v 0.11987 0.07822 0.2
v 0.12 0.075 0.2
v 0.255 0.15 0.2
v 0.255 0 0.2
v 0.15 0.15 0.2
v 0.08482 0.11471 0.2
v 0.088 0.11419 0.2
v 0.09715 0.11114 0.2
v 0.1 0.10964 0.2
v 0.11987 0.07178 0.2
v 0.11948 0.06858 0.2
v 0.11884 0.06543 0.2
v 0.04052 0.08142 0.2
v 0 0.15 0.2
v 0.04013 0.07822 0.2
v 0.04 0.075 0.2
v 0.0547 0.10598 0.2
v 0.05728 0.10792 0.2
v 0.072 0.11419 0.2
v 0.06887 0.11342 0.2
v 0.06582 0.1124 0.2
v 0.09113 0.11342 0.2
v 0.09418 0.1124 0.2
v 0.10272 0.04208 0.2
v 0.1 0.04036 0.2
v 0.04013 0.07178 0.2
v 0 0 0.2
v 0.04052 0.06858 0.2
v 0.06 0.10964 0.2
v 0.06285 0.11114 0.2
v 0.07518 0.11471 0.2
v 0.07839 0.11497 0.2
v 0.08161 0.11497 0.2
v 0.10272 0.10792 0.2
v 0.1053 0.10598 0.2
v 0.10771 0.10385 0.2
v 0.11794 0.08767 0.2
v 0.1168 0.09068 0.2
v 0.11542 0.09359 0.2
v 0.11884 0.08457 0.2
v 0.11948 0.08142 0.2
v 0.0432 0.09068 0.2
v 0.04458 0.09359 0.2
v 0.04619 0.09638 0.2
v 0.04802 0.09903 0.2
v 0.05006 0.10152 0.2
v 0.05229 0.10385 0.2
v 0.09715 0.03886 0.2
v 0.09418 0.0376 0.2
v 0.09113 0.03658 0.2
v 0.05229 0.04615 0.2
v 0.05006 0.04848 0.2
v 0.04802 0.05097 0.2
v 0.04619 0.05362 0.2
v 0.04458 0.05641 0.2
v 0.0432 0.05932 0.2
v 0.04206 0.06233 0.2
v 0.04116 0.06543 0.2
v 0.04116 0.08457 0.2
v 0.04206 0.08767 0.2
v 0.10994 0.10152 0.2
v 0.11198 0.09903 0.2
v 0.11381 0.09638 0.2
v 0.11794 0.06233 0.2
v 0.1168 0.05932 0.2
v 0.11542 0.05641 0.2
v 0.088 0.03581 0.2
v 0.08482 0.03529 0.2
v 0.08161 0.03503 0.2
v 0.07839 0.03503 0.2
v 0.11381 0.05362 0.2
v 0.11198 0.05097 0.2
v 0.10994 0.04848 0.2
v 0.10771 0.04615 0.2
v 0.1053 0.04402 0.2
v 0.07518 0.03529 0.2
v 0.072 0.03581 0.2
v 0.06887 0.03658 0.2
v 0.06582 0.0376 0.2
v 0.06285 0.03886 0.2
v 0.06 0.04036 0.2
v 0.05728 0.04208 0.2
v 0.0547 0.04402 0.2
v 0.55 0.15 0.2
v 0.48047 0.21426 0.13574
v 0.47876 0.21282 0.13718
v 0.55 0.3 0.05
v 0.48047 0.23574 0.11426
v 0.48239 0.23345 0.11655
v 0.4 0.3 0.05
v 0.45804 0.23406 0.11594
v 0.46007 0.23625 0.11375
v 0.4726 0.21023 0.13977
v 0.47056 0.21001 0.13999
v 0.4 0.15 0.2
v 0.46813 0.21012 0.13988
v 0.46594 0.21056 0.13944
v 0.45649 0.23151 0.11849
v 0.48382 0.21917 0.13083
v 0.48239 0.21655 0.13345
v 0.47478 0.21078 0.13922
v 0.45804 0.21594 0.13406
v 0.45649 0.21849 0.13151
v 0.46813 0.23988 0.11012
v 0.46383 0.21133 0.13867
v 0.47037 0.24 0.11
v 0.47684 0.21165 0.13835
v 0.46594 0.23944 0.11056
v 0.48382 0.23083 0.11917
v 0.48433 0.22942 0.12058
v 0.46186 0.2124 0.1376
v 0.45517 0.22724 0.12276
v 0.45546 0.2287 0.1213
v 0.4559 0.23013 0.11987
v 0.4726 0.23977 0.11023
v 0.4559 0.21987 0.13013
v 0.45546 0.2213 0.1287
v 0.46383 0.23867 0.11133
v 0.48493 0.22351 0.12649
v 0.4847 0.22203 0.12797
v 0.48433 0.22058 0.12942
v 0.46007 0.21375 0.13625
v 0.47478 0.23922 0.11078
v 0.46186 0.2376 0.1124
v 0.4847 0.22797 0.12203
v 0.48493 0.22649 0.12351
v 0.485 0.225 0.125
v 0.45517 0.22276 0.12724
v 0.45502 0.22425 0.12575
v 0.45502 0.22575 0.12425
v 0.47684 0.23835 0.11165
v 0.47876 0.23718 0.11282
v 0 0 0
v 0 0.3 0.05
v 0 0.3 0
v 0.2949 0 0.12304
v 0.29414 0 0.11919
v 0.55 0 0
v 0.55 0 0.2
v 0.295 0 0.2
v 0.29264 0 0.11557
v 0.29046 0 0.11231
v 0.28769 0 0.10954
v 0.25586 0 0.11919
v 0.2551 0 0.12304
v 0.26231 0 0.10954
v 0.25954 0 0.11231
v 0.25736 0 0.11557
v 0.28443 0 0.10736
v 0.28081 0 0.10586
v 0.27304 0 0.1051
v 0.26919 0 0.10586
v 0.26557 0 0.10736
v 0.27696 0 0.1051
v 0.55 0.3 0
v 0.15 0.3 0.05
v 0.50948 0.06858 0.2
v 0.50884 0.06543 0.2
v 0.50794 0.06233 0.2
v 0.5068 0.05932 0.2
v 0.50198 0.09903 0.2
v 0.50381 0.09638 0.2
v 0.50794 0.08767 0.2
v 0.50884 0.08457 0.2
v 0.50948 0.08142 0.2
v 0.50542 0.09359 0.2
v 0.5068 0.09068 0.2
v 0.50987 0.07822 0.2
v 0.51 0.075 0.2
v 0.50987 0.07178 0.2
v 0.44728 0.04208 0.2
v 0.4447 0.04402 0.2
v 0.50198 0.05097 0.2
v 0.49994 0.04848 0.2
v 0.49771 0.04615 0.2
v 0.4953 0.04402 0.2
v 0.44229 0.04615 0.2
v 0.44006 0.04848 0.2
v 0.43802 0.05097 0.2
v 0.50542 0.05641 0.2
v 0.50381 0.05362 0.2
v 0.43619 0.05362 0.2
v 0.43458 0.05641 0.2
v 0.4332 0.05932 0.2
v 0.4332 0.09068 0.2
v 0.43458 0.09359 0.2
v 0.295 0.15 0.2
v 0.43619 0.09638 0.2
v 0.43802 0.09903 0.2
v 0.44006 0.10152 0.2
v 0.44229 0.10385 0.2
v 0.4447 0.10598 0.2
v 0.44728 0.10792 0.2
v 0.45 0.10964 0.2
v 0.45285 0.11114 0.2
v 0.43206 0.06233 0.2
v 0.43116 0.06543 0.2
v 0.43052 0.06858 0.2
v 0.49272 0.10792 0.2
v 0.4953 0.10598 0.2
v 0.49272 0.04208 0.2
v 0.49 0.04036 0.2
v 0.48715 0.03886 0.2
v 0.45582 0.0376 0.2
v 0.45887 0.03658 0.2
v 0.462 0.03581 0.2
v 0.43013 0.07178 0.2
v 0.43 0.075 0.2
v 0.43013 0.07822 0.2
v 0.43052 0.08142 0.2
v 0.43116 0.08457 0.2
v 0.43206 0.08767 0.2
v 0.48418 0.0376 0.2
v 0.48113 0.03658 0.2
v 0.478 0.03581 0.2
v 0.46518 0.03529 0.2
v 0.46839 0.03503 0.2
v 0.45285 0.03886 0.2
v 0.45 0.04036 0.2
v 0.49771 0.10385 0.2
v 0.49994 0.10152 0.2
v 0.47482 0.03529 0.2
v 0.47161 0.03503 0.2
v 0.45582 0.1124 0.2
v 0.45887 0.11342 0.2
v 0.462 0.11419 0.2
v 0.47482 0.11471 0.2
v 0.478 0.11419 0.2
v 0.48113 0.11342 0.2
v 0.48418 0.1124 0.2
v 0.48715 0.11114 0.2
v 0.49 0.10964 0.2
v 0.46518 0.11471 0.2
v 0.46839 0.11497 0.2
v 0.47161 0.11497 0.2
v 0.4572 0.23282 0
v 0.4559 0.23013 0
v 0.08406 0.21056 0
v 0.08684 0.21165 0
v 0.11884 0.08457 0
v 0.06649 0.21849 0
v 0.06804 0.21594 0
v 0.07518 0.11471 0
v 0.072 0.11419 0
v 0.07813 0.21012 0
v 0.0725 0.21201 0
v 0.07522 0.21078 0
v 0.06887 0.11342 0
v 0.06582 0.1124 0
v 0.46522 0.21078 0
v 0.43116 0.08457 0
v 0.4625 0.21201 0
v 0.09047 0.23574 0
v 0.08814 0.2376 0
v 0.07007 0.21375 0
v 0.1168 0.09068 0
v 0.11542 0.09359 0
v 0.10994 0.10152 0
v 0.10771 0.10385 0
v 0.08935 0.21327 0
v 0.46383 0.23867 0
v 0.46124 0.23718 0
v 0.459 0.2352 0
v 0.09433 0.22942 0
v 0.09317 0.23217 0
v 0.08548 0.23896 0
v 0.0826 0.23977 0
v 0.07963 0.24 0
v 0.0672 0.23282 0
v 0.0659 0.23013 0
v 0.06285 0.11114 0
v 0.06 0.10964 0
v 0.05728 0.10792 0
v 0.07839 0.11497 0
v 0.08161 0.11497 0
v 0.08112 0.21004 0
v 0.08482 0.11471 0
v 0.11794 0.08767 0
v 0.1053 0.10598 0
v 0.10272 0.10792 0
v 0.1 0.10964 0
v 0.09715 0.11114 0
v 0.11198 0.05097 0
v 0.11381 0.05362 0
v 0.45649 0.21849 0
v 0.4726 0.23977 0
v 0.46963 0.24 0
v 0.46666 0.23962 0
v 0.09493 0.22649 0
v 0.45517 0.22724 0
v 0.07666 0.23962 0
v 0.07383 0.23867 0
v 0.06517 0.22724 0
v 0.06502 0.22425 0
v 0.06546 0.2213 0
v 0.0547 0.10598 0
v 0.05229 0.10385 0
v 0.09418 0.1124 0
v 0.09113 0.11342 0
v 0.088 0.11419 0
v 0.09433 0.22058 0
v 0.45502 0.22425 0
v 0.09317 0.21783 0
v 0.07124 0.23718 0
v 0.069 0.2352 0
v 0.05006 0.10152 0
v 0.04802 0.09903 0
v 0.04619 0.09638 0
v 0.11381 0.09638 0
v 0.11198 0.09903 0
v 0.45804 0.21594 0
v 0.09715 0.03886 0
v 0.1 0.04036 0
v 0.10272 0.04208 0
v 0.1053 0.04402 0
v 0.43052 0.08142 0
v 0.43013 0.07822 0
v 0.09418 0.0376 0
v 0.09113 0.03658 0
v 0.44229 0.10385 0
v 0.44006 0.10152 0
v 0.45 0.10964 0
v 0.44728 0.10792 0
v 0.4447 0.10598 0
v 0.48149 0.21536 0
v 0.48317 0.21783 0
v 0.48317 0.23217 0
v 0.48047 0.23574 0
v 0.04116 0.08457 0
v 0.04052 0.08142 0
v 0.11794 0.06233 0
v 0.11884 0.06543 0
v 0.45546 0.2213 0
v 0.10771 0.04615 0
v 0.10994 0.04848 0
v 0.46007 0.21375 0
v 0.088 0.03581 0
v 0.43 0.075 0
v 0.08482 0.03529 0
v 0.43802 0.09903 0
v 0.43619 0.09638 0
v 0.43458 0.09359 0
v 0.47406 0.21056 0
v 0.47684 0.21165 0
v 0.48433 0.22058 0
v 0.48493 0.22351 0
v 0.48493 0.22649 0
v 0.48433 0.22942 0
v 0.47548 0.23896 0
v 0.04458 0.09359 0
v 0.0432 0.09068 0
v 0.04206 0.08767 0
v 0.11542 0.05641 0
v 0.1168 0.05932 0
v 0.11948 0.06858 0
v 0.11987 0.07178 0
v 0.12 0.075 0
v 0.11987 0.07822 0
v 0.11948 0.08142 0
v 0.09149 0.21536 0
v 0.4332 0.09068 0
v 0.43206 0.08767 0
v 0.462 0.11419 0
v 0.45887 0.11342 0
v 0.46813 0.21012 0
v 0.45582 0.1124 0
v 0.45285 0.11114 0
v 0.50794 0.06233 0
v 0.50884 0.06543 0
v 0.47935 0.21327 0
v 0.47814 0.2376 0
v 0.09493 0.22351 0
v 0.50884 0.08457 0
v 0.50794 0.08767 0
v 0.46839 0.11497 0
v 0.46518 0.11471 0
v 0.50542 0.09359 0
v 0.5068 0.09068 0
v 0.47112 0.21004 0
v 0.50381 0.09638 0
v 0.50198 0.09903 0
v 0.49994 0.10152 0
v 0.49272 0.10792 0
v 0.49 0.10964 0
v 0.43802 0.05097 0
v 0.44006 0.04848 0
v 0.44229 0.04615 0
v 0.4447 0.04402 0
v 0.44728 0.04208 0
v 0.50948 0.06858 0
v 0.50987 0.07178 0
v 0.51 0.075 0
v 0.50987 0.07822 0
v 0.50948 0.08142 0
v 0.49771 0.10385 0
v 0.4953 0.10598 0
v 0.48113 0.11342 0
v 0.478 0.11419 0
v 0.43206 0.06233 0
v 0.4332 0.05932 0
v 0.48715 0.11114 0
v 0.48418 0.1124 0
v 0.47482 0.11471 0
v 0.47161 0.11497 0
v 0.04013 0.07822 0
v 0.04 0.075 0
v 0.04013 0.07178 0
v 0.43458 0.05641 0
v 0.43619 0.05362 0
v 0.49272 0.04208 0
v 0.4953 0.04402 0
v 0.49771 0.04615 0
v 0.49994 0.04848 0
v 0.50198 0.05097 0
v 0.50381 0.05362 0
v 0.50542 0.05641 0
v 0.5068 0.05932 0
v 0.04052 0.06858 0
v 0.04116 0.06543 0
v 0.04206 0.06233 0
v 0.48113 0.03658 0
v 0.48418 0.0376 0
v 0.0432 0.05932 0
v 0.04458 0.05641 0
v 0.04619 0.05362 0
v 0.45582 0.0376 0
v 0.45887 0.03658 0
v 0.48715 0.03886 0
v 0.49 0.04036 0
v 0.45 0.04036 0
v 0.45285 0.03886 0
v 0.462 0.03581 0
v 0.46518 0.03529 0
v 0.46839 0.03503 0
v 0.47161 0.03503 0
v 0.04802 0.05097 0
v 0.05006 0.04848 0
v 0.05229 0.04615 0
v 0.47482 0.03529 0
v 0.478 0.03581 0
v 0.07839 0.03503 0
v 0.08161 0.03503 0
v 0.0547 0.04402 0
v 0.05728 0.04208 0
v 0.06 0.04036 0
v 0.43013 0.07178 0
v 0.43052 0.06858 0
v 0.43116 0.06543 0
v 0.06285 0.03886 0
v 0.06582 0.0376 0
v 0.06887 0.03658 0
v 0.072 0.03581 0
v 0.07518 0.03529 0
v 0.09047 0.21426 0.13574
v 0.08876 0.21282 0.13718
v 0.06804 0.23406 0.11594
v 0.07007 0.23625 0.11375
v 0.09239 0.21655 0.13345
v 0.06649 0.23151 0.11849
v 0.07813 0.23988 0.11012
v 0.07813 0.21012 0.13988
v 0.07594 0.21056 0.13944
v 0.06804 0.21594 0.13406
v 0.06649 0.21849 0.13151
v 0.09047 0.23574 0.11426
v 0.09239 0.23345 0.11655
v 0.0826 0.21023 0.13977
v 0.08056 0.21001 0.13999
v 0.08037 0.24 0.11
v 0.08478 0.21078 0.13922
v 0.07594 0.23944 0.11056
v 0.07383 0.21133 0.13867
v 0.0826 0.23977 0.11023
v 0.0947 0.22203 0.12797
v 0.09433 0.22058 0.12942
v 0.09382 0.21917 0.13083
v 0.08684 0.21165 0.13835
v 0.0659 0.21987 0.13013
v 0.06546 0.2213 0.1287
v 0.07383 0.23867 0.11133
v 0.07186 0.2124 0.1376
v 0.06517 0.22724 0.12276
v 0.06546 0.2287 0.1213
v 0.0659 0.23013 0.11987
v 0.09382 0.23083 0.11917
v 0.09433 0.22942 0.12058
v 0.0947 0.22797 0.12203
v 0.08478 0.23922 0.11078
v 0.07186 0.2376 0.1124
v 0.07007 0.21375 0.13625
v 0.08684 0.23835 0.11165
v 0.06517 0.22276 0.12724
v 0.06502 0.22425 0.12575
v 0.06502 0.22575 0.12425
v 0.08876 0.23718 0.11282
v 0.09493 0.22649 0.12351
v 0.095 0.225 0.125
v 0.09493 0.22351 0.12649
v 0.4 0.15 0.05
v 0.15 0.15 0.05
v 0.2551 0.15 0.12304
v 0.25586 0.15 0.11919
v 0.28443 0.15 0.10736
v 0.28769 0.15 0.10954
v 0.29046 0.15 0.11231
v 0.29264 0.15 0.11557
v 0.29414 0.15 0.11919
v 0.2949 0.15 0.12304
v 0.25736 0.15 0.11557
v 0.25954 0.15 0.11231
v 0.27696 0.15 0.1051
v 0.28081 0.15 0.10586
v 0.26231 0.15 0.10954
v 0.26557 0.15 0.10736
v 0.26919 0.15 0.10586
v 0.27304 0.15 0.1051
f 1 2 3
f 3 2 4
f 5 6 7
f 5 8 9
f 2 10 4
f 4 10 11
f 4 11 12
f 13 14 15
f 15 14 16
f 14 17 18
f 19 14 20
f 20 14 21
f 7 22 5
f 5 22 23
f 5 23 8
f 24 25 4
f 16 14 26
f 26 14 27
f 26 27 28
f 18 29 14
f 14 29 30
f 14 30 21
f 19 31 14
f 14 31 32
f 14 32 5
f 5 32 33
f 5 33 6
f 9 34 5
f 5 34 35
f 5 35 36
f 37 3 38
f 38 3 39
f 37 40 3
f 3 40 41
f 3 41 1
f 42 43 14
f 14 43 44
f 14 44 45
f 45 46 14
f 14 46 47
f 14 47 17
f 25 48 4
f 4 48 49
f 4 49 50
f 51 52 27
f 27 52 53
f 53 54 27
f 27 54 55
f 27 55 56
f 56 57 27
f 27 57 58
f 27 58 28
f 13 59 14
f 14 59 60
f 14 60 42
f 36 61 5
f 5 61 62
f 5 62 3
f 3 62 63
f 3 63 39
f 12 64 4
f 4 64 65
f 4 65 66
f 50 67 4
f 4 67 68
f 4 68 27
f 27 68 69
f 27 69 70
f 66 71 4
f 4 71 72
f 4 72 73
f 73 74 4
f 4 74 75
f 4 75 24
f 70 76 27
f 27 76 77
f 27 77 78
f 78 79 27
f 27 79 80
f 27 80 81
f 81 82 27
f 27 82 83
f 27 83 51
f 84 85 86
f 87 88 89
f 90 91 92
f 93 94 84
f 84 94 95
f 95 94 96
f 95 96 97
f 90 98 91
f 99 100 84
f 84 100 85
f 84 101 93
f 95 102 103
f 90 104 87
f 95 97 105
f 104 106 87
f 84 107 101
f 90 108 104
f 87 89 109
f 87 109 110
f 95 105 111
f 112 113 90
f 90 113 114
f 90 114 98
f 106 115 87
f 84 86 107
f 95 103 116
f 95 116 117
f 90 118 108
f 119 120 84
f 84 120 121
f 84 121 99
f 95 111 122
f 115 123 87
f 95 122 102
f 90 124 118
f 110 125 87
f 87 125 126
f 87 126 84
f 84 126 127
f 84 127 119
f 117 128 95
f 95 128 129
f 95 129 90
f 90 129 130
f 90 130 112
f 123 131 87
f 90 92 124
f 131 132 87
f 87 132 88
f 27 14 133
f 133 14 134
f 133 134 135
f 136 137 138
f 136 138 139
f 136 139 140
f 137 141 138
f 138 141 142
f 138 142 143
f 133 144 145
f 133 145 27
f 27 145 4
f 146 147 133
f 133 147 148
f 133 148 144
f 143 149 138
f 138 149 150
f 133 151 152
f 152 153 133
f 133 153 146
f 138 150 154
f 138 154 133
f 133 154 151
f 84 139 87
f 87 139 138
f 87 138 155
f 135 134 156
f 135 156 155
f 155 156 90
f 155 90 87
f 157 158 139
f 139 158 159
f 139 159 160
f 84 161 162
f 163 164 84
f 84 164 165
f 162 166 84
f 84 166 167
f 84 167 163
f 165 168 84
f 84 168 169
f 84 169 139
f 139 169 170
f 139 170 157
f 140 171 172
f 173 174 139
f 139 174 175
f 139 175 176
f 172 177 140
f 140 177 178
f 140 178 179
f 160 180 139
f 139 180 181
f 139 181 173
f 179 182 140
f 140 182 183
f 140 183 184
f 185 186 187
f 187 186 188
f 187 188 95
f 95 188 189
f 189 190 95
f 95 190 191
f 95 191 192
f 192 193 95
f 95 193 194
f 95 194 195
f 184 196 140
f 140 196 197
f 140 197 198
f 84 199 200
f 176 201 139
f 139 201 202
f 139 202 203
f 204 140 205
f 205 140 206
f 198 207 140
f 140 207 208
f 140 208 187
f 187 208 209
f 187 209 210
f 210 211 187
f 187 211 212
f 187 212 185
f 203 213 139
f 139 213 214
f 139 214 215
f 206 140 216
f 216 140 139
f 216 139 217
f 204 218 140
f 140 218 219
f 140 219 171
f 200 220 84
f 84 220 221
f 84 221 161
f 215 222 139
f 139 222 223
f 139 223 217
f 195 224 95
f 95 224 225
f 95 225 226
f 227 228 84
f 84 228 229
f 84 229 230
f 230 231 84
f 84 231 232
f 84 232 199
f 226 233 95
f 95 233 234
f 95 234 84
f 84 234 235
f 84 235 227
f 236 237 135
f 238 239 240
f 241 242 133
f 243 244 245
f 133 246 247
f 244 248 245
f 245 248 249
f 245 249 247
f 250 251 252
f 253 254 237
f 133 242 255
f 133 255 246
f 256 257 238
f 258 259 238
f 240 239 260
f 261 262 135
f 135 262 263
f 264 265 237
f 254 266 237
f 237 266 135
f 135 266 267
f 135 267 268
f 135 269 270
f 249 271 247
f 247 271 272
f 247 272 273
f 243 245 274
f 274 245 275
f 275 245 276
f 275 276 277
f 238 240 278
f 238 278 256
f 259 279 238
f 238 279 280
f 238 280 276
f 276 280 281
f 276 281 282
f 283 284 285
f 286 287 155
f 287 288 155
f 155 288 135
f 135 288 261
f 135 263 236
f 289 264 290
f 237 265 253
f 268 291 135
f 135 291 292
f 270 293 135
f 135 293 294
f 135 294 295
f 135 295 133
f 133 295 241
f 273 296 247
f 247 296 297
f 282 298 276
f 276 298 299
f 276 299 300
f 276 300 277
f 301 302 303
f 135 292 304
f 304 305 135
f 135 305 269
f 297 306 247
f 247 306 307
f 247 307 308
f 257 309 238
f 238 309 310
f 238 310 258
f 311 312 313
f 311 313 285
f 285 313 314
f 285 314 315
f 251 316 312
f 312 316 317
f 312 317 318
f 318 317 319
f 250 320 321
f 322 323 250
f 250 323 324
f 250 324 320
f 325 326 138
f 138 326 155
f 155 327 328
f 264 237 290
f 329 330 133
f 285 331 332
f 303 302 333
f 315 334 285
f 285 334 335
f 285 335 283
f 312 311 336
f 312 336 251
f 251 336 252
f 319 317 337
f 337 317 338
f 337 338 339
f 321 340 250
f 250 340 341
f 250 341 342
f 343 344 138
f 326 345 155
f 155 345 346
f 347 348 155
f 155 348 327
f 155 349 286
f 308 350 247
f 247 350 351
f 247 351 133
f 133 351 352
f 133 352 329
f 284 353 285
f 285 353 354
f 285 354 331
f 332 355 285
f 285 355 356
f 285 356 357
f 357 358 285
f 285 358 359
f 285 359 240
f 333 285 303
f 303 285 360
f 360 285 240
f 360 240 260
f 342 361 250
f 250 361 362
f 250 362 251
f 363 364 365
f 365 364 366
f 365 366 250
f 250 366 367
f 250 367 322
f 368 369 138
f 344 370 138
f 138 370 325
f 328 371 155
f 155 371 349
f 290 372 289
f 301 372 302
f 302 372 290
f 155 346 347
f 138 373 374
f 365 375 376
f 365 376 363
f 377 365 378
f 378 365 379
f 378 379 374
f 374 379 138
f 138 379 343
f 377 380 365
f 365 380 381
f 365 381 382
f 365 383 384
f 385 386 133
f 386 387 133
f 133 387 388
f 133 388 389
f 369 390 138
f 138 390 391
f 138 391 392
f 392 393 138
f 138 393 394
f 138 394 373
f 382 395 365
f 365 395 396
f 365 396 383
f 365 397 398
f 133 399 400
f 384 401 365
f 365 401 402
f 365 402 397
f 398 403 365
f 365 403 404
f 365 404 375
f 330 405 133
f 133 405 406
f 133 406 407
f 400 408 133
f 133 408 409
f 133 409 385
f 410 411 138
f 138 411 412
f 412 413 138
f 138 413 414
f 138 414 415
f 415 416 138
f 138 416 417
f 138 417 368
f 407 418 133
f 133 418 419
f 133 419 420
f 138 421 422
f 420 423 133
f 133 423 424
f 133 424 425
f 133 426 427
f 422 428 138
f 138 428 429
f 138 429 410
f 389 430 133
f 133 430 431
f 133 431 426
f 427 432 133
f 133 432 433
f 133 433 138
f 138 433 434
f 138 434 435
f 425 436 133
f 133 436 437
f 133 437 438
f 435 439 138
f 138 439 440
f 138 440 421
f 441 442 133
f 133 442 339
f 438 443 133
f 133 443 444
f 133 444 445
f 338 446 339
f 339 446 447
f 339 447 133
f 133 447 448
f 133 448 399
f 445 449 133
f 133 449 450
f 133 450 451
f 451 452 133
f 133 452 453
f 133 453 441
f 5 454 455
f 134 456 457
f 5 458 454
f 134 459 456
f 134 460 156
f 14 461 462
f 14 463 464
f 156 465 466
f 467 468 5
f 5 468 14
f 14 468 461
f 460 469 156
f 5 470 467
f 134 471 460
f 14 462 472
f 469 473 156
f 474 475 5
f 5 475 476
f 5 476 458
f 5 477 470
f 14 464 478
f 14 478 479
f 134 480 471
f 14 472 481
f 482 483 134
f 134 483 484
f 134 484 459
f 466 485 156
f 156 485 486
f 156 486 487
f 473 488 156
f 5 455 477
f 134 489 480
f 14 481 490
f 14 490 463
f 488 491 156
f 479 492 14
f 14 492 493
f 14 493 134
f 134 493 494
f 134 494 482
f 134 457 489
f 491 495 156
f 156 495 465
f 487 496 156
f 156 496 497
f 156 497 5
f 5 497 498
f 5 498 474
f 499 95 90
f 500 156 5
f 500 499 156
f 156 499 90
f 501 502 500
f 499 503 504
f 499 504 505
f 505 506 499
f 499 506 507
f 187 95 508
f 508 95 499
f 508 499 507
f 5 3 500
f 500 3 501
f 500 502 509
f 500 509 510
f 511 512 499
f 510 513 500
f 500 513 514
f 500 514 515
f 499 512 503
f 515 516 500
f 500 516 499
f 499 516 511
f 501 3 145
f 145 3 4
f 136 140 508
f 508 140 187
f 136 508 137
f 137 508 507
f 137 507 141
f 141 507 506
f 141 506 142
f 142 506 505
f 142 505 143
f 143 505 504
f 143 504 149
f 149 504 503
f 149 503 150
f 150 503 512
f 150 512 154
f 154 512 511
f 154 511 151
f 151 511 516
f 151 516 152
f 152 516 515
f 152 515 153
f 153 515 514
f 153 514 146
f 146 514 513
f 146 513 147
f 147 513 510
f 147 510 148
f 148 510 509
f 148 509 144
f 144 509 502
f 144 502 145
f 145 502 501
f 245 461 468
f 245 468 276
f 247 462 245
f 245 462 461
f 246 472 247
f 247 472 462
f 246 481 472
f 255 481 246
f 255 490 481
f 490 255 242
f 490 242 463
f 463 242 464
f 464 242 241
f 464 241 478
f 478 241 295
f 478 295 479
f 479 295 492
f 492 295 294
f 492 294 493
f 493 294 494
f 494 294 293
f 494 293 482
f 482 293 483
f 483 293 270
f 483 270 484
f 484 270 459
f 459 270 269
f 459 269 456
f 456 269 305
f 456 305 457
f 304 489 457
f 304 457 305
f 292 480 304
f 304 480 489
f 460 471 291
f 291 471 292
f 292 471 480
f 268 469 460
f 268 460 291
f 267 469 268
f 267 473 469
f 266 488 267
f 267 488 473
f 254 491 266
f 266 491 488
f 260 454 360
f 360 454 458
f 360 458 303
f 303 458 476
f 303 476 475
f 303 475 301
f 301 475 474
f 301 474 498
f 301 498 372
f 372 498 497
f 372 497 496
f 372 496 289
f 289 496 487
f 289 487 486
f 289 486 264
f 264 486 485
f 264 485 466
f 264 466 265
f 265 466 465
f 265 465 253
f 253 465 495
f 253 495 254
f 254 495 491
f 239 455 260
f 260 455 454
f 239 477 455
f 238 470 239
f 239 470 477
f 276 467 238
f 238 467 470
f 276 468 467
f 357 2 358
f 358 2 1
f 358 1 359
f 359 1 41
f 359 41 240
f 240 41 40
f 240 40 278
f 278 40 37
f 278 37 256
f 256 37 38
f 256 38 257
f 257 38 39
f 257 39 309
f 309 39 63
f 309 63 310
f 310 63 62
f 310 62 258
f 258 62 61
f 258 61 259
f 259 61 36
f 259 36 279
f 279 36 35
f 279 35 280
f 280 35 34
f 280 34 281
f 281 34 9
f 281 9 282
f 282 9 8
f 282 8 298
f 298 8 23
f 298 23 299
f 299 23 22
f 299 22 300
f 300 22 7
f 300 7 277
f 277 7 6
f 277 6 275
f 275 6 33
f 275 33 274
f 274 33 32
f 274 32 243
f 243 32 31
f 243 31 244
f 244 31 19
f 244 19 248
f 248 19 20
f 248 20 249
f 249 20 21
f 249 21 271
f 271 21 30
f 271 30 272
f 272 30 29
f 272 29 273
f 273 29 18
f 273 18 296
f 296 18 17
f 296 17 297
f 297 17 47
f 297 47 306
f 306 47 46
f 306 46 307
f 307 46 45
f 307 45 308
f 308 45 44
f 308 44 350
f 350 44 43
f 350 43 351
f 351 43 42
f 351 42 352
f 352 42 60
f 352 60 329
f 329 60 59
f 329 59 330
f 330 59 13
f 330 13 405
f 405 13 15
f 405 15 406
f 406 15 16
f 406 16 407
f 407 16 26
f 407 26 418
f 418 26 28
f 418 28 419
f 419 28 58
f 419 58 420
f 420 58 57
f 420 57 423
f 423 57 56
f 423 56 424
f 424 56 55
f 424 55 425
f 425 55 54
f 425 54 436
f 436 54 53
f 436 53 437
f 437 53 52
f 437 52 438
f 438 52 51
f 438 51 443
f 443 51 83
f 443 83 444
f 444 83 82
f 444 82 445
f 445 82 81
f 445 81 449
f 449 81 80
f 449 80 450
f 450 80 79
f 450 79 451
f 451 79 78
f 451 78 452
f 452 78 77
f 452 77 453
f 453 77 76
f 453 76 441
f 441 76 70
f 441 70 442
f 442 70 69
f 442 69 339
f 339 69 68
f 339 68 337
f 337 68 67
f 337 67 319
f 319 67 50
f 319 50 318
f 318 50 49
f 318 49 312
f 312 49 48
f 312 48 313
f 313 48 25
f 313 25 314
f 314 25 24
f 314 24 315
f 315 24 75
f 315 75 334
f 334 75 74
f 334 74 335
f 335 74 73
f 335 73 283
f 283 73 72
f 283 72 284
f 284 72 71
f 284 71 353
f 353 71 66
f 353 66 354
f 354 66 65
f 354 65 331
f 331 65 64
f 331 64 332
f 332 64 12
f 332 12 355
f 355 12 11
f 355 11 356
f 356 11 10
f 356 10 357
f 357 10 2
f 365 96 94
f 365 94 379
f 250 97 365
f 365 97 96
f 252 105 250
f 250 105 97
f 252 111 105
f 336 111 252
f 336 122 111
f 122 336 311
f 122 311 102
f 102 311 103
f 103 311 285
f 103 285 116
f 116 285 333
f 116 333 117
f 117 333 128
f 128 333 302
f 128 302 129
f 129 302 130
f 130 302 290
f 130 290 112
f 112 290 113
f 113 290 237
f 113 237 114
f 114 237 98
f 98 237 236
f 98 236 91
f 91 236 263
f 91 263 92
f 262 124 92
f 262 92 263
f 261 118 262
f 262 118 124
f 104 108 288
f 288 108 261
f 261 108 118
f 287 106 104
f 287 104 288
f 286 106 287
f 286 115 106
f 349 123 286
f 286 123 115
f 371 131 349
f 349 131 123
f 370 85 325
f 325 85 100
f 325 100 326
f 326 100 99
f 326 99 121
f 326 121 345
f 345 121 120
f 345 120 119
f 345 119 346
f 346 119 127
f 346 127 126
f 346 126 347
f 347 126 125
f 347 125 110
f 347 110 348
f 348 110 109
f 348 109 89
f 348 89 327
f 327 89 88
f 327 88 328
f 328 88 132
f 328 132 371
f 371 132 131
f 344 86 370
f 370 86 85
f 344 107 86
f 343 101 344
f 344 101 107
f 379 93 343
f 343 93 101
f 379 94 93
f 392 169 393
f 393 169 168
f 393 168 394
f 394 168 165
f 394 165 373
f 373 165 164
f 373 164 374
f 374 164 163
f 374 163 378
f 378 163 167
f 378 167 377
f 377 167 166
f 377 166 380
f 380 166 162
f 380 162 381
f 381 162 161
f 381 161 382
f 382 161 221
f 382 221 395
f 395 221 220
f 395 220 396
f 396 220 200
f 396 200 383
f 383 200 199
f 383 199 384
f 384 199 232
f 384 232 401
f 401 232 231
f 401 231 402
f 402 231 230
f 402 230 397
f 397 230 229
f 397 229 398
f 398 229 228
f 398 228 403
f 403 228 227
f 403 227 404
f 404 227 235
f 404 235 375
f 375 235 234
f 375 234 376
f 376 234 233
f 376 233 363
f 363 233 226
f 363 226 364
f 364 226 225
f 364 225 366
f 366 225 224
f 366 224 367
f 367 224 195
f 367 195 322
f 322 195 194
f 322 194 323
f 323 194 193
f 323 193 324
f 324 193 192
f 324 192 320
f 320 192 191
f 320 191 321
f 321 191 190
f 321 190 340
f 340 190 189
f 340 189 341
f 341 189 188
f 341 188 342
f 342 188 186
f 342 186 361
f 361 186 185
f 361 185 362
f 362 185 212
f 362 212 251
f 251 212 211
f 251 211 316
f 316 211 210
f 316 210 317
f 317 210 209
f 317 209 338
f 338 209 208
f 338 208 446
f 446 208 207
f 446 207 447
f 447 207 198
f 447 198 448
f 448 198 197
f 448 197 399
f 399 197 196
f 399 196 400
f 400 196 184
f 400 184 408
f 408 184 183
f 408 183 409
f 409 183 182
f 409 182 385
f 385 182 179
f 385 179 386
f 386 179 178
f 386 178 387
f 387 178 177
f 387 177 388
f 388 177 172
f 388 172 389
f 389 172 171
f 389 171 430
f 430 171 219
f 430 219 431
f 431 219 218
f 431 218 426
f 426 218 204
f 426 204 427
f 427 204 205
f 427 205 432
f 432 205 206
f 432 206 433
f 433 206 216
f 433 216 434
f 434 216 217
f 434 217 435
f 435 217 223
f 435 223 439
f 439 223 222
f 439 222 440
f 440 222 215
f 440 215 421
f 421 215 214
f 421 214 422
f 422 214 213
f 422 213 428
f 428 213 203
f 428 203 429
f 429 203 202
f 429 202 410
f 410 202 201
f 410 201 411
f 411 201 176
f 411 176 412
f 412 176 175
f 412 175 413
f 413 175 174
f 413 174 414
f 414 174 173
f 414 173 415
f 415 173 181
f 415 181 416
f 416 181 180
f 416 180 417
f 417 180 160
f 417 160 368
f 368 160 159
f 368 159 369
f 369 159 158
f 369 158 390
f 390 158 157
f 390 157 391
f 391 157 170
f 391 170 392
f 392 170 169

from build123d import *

# Parameters (mm, degrees)
SKETCH_1_W          = 0.55
SKETCH_1_H          = 0.3
EXTRUDE_1_DEPTH     = 0.2
CUT_EXTRUDE_1_REACH = 2.658
SKETCH_3_W          = 0.25
SKETCH_3_H          = 0.15
CUT_EXTRUDE_2_DEPTH = 0.15
CUT_EXTRUDE_3_DEPTH = 1.604152299
SKETCH_5_R          = 0.04
SKETCH_5_R_2        = 0.015
CUT_EXTRUDE_4_DEPTH = 1.657647322


with BuildPart() as part:
    # 草图1 → 凸台-拉伸1 (new body)
    with BuildSketch(Plane.XY):
        with Locations((0.275, 0.15)):
            Rectangle(SKETCH_1_W, SKETCH_1_H)
    extrude(amount=EXTRUDE_1_DEPTH)

    # 草图2 → 切除-拉伸1 (cut, up to next)
    with BuildSketch(Plane.ZY, mode=Mode.PRIVATE) as cut_extrude_1_sk1:
        Polygon((0.2, 0.3), (0.2, 0.15), (0.05, 0.3), align=None)
    cut_extrude_1_tool1 = extrude(cut_extrude_1_sk1.sketch, amount=-CUT_EXTRUDE_1_REACH, mode=Mode.PRIVATE) & part.part
    add(cut_extrude_1_tool1.solids().sort_by_distance((0, 0.25, 0.15))[0], mode=Mode.SUBTRACT)

    # 草图3 → 切除-拉伸2 (cut)
    with BuildSketch(Plane(origin=(0, 0.3, 0), x_dir=(1, 0, 0), z_dir=(0, 1, 0))):
        with Locations((0.275, -0.125)):
            Rectangle(SKETCH_3_W, SKETCH_3_H)
    extrude(amount=-CUT_EXTRUDE_2_DEPTH, mode=Mode.SUBTRACT)

    # 草图4 → 切除-拉伸3 (cut, through all)
    with BuildSketch(Plane(origin=(0, 0.15, 0), x_dir=(1, 0, 0), z_dir=(0, 1, 0))):
        with BuildLine():
            Line((0.255, -0.275), (0.255, -0.125))
            ThreePointArc((0.255, -0.125), (0.275, -0.105), (0.295, -0.125))
            Line((0.295, -0.125), (0.295, -0.275))
            ThreePointArc((0.295, -0.275), (0.275, -0.295), (0.255, -0.275))
        make_face()
    extrude(amount=-CUT_EXTRUDE_3_DEPTH, mode=Mode.SUBTRACT)

    # 草图5 → 切除-拉伸4 (cut, through all)
    with BuildSketch(Plane.XY.offset(0.2)):
        with Locations((0.08, 0.075)):
            Circle(SKETCH_5_R)
        with Locations((0.08, 0.225)):
            Circle(SKETCH_5_R_2)
        with Locations(Location((0.47, 0.075, 0), (0, 0, 180))):
            Circle(SKETCH_5_R)
        with Locations(Location((0.47, 0.225, 0), (0, 0, 270))):
            Circle(SKETCH_5_R_2)
    extrude(amount=-CUT_EXTRUDE_4_DEPTH, mode=Mode.SUBTRACT)


solid = part.part
